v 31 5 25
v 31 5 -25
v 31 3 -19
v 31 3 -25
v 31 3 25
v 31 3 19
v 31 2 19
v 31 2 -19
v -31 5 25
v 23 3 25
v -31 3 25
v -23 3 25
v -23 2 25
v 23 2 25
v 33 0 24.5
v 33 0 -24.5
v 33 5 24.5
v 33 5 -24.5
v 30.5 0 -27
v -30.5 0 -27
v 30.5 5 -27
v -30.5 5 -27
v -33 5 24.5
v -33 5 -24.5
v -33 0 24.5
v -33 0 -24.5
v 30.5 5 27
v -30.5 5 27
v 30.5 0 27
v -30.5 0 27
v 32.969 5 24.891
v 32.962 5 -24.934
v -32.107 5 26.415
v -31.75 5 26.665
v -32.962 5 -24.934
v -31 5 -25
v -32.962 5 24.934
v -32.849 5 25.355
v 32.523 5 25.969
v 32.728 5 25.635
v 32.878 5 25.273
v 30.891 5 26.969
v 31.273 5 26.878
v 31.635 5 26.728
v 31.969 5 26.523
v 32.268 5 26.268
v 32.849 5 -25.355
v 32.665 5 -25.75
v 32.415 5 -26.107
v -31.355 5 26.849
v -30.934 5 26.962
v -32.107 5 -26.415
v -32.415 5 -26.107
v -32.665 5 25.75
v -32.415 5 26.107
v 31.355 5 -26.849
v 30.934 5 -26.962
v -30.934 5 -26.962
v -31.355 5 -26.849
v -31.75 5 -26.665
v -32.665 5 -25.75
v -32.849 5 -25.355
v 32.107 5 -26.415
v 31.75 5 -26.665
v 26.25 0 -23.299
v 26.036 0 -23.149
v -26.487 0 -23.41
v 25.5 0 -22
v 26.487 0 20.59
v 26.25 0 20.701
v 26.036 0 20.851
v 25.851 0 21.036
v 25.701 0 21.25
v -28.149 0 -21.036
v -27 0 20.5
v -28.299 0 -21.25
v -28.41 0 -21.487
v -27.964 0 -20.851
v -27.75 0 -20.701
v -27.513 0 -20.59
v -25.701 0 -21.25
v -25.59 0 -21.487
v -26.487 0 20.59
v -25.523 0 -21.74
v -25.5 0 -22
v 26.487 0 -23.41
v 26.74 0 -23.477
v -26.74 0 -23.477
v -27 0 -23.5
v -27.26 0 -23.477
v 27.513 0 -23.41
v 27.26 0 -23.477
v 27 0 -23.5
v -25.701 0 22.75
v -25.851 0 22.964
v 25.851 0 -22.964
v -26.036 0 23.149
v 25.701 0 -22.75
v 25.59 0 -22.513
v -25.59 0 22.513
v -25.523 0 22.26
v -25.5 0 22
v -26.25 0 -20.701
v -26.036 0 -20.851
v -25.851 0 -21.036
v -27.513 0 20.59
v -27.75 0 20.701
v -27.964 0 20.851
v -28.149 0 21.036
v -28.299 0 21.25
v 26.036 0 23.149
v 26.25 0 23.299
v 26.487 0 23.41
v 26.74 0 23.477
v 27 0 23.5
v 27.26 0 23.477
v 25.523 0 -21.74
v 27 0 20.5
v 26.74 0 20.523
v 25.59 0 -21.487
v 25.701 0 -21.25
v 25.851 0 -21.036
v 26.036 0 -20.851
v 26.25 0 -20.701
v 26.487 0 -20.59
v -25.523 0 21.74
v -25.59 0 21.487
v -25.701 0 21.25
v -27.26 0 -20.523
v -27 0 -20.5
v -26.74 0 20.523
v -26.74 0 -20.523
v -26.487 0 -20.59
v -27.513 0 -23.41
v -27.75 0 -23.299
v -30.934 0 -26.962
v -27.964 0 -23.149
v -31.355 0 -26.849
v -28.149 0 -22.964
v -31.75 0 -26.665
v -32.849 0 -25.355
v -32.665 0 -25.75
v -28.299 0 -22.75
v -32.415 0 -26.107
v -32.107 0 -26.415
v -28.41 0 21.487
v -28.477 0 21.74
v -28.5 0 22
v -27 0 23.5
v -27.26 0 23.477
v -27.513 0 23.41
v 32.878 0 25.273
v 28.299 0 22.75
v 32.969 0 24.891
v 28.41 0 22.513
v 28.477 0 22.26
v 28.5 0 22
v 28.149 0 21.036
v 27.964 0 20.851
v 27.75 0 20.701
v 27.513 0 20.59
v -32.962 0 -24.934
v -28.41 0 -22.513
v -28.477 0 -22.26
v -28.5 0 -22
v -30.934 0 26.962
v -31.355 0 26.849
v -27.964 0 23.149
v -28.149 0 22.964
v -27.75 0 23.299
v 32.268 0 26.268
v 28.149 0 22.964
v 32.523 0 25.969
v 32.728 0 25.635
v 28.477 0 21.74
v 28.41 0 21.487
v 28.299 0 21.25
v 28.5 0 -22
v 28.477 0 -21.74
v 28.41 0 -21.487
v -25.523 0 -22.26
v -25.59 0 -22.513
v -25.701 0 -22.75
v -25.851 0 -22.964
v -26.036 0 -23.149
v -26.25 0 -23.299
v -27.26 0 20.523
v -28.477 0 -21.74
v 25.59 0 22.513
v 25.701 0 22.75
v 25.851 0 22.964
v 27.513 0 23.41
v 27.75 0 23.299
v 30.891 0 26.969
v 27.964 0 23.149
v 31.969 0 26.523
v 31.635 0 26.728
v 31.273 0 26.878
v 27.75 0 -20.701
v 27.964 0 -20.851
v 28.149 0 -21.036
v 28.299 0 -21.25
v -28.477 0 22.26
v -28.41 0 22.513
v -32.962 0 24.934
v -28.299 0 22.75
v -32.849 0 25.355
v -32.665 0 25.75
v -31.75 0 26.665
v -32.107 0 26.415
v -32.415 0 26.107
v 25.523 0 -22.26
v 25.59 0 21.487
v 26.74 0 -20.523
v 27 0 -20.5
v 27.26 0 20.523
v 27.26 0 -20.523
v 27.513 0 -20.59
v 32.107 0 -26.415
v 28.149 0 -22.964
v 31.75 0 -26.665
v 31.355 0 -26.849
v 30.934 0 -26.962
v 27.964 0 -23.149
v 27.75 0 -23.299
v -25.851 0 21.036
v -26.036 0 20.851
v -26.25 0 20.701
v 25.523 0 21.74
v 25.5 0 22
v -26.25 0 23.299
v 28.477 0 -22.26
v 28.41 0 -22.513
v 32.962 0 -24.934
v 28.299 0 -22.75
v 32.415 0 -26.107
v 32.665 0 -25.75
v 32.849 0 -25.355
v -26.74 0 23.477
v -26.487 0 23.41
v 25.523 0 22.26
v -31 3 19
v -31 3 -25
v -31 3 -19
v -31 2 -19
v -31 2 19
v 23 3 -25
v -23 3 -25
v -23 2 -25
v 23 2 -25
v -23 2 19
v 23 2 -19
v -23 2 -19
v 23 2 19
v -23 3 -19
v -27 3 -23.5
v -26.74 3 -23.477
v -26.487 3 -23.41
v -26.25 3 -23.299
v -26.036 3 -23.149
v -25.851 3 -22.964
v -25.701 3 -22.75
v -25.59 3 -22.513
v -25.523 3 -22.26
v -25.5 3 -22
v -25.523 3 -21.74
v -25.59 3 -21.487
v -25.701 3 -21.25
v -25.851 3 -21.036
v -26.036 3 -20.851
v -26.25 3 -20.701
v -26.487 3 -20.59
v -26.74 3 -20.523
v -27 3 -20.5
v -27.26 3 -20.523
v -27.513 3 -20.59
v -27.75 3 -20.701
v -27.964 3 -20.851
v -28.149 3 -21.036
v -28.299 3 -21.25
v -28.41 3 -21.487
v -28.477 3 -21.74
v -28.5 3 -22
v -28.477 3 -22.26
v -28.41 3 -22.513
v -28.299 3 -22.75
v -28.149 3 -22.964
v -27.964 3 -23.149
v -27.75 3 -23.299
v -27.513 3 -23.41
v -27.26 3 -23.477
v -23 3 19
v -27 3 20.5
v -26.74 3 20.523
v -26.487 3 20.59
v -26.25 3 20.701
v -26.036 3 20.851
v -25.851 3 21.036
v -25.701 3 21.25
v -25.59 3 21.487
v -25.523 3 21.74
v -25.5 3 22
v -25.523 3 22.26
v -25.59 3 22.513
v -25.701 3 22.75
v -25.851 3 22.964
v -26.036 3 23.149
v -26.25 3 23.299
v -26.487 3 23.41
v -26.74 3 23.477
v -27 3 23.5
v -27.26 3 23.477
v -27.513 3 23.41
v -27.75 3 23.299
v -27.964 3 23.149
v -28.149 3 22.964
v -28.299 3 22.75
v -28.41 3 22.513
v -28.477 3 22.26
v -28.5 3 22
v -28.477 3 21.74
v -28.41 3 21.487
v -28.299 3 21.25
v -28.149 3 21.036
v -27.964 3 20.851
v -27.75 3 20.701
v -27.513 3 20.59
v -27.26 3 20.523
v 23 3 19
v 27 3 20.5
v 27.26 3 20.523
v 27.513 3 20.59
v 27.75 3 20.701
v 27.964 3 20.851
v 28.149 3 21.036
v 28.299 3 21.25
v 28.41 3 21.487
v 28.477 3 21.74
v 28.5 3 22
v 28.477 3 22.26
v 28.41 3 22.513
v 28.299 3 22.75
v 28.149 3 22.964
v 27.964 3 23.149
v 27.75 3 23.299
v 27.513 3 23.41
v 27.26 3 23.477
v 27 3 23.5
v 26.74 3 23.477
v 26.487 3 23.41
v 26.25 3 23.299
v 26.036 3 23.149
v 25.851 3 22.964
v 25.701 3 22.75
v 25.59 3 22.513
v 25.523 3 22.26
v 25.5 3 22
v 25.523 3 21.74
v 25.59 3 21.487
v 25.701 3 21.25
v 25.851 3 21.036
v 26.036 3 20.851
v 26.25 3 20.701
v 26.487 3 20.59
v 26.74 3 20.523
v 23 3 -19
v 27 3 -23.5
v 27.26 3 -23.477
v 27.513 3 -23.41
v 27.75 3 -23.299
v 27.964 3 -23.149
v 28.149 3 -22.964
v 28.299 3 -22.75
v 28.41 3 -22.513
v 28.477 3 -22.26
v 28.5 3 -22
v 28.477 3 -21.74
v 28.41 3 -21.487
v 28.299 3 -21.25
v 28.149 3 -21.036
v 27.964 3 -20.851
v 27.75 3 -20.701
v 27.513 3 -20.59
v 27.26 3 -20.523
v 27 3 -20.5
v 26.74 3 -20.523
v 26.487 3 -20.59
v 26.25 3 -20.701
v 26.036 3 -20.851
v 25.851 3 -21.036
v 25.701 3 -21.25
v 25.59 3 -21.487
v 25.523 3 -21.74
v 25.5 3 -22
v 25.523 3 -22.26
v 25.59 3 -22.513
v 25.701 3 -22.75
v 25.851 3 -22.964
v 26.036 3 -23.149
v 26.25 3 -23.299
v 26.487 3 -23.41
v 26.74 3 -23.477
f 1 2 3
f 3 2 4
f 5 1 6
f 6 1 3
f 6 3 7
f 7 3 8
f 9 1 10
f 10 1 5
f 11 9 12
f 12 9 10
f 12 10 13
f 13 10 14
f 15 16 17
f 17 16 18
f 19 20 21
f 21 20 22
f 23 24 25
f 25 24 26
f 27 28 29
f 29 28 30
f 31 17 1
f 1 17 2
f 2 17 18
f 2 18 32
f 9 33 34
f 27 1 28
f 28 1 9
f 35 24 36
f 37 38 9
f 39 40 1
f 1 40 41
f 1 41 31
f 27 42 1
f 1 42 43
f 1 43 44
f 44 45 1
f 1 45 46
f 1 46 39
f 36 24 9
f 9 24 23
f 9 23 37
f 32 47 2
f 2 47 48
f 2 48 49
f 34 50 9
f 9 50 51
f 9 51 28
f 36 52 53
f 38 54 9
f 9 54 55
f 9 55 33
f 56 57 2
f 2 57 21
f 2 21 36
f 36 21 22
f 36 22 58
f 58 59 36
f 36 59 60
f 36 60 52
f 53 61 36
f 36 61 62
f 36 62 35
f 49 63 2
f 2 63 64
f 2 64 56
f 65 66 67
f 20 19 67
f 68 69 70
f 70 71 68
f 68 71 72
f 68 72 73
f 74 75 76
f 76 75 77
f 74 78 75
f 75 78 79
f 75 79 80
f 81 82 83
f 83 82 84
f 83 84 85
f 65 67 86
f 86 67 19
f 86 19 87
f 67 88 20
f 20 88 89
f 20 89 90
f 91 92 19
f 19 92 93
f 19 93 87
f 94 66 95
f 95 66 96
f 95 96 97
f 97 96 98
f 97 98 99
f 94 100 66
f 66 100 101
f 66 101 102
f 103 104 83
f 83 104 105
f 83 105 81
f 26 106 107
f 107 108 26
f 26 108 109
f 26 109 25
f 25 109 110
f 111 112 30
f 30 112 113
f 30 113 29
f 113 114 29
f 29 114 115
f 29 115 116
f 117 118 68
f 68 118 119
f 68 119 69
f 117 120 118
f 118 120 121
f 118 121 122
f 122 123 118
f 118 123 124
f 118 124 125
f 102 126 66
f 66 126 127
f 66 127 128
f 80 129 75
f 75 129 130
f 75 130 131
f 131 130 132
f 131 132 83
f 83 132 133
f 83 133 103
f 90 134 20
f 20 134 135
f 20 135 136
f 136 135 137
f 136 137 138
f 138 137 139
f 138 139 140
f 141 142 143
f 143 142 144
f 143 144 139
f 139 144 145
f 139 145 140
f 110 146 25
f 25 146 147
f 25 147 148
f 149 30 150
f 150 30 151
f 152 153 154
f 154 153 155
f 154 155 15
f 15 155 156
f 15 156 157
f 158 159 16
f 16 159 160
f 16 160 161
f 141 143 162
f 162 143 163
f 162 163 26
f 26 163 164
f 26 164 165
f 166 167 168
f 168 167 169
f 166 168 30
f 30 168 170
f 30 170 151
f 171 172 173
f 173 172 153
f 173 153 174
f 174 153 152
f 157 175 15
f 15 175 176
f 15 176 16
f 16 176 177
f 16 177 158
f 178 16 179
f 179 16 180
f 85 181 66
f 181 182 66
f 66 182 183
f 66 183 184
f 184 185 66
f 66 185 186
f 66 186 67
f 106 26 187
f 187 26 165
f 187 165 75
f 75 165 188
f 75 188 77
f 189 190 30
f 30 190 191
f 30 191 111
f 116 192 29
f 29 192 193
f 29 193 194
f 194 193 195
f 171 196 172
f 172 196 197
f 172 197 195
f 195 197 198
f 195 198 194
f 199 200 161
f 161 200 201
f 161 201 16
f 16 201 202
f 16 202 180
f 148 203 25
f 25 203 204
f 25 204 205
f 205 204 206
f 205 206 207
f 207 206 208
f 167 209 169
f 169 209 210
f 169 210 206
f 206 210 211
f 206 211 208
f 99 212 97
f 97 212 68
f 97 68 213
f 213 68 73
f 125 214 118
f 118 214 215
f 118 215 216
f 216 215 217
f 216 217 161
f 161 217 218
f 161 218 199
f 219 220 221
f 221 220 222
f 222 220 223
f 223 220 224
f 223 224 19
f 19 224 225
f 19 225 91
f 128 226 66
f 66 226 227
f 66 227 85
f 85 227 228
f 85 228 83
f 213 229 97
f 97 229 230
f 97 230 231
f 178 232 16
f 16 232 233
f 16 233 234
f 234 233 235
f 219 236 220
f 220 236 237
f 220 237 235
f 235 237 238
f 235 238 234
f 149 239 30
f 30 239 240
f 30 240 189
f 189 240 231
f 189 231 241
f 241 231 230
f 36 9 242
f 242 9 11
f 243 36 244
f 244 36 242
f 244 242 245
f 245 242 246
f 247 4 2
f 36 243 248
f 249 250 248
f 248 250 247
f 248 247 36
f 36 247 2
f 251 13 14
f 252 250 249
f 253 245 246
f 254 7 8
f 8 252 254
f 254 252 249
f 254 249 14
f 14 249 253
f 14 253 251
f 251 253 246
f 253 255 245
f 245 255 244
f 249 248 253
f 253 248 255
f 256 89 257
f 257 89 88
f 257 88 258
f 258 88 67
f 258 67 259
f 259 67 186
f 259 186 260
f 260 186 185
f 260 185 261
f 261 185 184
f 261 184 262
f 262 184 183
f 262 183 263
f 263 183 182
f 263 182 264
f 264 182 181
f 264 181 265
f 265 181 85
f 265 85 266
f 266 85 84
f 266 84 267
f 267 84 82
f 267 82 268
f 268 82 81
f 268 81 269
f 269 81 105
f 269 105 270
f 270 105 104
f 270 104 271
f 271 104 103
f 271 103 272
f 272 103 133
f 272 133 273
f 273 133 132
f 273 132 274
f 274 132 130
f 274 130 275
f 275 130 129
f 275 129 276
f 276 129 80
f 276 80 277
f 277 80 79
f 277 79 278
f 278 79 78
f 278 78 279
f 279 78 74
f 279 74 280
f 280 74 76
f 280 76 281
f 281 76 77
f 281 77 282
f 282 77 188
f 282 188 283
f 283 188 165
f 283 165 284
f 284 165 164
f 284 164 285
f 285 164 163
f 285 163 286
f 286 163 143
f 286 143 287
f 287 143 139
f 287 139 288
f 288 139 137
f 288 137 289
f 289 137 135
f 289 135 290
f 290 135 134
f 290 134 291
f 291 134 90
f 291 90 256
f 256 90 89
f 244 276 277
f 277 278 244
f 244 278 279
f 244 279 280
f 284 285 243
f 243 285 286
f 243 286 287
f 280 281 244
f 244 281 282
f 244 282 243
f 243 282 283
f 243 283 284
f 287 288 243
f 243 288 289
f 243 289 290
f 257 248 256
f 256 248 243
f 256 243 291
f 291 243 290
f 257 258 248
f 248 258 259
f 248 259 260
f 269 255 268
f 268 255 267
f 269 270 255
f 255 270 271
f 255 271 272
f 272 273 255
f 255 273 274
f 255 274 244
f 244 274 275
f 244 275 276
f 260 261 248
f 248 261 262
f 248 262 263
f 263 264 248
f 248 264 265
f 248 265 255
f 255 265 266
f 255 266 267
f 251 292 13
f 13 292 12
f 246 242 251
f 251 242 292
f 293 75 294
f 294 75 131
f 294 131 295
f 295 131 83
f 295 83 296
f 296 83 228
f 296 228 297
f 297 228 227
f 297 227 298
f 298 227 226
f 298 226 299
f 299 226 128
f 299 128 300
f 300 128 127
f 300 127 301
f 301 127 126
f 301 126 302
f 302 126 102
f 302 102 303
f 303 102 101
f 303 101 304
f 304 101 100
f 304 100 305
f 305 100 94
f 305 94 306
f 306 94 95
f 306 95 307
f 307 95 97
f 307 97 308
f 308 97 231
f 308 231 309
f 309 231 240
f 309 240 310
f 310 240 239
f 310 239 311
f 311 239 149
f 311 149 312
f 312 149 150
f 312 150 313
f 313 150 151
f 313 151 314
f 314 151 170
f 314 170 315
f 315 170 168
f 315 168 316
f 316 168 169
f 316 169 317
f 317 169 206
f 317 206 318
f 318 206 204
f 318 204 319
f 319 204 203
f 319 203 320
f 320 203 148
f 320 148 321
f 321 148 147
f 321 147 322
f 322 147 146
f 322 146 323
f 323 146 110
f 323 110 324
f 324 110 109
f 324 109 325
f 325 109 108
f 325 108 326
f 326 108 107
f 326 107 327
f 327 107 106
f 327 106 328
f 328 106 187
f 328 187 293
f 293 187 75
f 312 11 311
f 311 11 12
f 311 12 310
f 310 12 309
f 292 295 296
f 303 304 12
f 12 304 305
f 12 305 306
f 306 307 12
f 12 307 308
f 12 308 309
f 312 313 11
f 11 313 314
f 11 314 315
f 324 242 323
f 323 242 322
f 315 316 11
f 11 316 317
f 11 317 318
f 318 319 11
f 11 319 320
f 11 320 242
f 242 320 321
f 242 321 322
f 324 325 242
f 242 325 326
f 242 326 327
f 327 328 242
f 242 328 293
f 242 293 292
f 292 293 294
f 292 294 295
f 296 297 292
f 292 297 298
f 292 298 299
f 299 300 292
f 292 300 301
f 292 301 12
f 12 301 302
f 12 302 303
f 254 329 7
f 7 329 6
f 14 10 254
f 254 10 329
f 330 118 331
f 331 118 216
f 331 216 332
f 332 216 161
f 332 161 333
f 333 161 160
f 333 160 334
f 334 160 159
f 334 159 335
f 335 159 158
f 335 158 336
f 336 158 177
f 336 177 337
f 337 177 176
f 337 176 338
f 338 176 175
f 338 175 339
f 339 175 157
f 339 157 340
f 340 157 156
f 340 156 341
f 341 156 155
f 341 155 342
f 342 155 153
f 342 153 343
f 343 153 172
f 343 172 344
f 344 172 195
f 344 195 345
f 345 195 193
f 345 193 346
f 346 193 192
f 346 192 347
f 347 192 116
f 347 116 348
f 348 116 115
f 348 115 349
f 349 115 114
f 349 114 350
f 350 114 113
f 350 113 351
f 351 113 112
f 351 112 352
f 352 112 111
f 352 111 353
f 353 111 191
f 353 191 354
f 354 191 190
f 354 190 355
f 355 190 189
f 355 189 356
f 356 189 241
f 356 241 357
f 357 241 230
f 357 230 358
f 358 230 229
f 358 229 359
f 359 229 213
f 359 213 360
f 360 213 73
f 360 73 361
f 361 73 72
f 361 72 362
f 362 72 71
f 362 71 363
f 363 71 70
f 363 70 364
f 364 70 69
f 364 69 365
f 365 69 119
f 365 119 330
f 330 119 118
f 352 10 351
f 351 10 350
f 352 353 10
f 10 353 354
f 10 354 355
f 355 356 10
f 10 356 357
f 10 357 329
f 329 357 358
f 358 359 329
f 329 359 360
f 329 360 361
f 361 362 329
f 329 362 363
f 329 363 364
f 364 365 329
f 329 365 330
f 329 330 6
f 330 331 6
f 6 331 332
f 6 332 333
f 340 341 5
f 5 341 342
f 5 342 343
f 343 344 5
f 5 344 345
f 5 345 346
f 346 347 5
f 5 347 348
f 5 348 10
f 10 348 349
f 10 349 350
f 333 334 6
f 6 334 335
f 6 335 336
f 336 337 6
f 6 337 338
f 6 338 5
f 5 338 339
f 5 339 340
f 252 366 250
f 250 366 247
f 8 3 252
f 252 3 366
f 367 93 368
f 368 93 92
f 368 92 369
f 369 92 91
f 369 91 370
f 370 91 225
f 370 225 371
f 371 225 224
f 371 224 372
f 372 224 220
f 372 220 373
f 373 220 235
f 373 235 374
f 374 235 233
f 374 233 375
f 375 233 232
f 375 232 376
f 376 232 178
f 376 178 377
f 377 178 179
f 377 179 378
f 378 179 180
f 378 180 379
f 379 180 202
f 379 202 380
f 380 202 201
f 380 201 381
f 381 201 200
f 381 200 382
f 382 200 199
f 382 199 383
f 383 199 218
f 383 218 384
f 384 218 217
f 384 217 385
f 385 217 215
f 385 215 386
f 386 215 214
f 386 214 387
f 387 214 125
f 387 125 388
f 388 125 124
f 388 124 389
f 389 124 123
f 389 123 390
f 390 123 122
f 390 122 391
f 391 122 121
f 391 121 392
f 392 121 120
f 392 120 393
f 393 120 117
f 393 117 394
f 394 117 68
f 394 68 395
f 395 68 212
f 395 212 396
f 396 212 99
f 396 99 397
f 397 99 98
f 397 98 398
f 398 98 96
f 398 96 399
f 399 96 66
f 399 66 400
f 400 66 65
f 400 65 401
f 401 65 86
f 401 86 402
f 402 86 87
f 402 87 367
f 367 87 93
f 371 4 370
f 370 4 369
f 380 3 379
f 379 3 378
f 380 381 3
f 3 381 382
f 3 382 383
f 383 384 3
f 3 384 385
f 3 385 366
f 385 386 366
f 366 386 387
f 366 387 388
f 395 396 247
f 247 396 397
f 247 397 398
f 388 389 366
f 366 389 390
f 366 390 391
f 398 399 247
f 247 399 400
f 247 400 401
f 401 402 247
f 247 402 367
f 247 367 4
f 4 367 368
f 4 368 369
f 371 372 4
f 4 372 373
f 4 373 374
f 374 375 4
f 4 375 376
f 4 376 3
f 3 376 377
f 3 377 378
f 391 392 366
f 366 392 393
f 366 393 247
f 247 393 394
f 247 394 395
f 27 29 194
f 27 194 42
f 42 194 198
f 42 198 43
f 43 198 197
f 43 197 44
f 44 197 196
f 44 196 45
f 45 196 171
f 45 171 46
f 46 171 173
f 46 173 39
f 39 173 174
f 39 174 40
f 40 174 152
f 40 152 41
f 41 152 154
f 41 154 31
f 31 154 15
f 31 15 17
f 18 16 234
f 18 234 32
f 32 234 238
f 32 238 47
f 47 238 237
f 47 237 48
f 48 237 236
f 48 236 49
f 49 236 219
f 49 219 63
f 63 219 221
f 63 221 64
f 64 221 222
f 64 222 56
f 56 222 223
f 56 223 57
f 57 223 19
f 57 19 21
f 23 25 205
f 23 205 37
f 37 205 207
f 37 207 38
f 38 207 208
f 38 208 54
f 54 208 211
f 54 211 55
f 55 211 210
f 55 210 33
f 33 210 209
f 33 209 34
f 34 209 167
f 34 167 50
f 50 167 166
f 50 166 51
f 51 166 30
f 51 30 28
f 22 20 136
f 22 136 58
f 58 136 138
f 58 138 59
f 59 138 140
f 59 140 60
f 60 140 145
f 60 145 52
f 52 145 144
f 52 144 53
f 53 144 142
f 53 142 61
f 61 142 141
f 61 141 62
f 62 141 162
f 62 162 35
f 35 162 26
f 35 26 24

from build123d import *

# Parameters (mm, degrees)
SKETCH1_W           = 66
SKETCH1_H           = 54
BOSS_EXTRUDE1_DEPTH = 5
SKETCH2_W           = 62
SKETCH2_H           = 50
CUT_EXTRUDE1_DEPTH  = 3
SKETCH3_W           = 8
SKETCH3_H           = 6
SKETCH3_R           = 1.5
BOSS_EXTRUDE2_DEPTH = 3
SKETCH4_R           = 1.5
CUT_EXTRUDE2_DEPTH  = 3
FILLET1_R           = 2.5


with BuildPart() as part:
    # Sketch1 → Boss-Extrude1 (new body)
    with BuildSketch(Plane(origin=(0, 0, 0), x_dir=(1, 0, 0), z_dir=(0, 1, 0))):
        Rectangle(SKETCH1_W, SKETCH1_H)
    extrude(amount=BOSS_EXTRUDE1_DEPTH)

    # Sketch2 → Cut-Extrude1 (cut)
    with BuildSketch(Plane(origin=(0, 5, 0), x_dir=(1, 0, 0), z_dir=(0, 1, 0))):
        Rectangle(SKETCH2_W, SKETCH2_H)
    extrude(amount=-CUT_EXTRUDE1_DEPTH, mode=Mode.SUBTRACT)

    # Sketch3 → Boss-Extrude2 (add)
    with BuildSketch(Plane(origin=(0, 0, 0), x_dir=(1, 0, 0), z_dir=(0, 1, 0))):
        with Locations((-27, -22)):
            Rectangle(SKETCH3_W, SKETCH3_H)
        with Locations((-27, -22)):
            Circle(SKETCH3_R, mode=Mode.SUBTRACT)
        with Locations((-27, 22)):
            Rectangle(SKETCH3_W, SKETCH3_H)
        with Locations((-27, 22)):
            Circle(SKETCH3_R, mode=Mode.SUBTRACT)
        with Locations((27, -22)):
            Rectangle(SKETCH3_W, SKETCH3_H)
        with Locations((27, -22)):
            Circle(SKETCH3_R, mode=Mode.SUBTRACT)
        with Locations((27, 22)):
            Rectangle(SKETCH3_W, SKETCH3_H)
        with Locations((27, 22)):
            Circle(SKETCH3_R, mode=Mode.SUBTRACT)
    extrude(amount=BOSS_EXTRUDE2_DEPTH)

    # Sketch4 → Cut-Extrude2 (cut)
    with BuildSketch(Plane(origin=(0, 2, 0), x_dir=(1, 0, 0), z_dir=(0, 1, 0))):
        with Locations((-27, 22)):
            Circle(SKETCH4_R)
        with Locations((-27, -22)):
            Circle(SKETCH4_R)
        with Locations((27, -22)):
            Circle(SKETCH4_R)
        with Locations((27, 22)):
            Circle(SKETCH4_R)
    extrude(amount=-CUT_EXTRUDE2_DEPTH, mode=Mode.SUBTRACT)

    # Fillet1
    fillet1_edges = [part.edges().sort_by_distance(p)[0] for p in [
        (33, 2.5, 27),
        (-33, 2.5, 27),
        (-33, 2.5, -27),
        (33, 2.5, -27),
    ]]
    fillet(fillet1_edges, radius=FILLET1_R)


solid = part.part
